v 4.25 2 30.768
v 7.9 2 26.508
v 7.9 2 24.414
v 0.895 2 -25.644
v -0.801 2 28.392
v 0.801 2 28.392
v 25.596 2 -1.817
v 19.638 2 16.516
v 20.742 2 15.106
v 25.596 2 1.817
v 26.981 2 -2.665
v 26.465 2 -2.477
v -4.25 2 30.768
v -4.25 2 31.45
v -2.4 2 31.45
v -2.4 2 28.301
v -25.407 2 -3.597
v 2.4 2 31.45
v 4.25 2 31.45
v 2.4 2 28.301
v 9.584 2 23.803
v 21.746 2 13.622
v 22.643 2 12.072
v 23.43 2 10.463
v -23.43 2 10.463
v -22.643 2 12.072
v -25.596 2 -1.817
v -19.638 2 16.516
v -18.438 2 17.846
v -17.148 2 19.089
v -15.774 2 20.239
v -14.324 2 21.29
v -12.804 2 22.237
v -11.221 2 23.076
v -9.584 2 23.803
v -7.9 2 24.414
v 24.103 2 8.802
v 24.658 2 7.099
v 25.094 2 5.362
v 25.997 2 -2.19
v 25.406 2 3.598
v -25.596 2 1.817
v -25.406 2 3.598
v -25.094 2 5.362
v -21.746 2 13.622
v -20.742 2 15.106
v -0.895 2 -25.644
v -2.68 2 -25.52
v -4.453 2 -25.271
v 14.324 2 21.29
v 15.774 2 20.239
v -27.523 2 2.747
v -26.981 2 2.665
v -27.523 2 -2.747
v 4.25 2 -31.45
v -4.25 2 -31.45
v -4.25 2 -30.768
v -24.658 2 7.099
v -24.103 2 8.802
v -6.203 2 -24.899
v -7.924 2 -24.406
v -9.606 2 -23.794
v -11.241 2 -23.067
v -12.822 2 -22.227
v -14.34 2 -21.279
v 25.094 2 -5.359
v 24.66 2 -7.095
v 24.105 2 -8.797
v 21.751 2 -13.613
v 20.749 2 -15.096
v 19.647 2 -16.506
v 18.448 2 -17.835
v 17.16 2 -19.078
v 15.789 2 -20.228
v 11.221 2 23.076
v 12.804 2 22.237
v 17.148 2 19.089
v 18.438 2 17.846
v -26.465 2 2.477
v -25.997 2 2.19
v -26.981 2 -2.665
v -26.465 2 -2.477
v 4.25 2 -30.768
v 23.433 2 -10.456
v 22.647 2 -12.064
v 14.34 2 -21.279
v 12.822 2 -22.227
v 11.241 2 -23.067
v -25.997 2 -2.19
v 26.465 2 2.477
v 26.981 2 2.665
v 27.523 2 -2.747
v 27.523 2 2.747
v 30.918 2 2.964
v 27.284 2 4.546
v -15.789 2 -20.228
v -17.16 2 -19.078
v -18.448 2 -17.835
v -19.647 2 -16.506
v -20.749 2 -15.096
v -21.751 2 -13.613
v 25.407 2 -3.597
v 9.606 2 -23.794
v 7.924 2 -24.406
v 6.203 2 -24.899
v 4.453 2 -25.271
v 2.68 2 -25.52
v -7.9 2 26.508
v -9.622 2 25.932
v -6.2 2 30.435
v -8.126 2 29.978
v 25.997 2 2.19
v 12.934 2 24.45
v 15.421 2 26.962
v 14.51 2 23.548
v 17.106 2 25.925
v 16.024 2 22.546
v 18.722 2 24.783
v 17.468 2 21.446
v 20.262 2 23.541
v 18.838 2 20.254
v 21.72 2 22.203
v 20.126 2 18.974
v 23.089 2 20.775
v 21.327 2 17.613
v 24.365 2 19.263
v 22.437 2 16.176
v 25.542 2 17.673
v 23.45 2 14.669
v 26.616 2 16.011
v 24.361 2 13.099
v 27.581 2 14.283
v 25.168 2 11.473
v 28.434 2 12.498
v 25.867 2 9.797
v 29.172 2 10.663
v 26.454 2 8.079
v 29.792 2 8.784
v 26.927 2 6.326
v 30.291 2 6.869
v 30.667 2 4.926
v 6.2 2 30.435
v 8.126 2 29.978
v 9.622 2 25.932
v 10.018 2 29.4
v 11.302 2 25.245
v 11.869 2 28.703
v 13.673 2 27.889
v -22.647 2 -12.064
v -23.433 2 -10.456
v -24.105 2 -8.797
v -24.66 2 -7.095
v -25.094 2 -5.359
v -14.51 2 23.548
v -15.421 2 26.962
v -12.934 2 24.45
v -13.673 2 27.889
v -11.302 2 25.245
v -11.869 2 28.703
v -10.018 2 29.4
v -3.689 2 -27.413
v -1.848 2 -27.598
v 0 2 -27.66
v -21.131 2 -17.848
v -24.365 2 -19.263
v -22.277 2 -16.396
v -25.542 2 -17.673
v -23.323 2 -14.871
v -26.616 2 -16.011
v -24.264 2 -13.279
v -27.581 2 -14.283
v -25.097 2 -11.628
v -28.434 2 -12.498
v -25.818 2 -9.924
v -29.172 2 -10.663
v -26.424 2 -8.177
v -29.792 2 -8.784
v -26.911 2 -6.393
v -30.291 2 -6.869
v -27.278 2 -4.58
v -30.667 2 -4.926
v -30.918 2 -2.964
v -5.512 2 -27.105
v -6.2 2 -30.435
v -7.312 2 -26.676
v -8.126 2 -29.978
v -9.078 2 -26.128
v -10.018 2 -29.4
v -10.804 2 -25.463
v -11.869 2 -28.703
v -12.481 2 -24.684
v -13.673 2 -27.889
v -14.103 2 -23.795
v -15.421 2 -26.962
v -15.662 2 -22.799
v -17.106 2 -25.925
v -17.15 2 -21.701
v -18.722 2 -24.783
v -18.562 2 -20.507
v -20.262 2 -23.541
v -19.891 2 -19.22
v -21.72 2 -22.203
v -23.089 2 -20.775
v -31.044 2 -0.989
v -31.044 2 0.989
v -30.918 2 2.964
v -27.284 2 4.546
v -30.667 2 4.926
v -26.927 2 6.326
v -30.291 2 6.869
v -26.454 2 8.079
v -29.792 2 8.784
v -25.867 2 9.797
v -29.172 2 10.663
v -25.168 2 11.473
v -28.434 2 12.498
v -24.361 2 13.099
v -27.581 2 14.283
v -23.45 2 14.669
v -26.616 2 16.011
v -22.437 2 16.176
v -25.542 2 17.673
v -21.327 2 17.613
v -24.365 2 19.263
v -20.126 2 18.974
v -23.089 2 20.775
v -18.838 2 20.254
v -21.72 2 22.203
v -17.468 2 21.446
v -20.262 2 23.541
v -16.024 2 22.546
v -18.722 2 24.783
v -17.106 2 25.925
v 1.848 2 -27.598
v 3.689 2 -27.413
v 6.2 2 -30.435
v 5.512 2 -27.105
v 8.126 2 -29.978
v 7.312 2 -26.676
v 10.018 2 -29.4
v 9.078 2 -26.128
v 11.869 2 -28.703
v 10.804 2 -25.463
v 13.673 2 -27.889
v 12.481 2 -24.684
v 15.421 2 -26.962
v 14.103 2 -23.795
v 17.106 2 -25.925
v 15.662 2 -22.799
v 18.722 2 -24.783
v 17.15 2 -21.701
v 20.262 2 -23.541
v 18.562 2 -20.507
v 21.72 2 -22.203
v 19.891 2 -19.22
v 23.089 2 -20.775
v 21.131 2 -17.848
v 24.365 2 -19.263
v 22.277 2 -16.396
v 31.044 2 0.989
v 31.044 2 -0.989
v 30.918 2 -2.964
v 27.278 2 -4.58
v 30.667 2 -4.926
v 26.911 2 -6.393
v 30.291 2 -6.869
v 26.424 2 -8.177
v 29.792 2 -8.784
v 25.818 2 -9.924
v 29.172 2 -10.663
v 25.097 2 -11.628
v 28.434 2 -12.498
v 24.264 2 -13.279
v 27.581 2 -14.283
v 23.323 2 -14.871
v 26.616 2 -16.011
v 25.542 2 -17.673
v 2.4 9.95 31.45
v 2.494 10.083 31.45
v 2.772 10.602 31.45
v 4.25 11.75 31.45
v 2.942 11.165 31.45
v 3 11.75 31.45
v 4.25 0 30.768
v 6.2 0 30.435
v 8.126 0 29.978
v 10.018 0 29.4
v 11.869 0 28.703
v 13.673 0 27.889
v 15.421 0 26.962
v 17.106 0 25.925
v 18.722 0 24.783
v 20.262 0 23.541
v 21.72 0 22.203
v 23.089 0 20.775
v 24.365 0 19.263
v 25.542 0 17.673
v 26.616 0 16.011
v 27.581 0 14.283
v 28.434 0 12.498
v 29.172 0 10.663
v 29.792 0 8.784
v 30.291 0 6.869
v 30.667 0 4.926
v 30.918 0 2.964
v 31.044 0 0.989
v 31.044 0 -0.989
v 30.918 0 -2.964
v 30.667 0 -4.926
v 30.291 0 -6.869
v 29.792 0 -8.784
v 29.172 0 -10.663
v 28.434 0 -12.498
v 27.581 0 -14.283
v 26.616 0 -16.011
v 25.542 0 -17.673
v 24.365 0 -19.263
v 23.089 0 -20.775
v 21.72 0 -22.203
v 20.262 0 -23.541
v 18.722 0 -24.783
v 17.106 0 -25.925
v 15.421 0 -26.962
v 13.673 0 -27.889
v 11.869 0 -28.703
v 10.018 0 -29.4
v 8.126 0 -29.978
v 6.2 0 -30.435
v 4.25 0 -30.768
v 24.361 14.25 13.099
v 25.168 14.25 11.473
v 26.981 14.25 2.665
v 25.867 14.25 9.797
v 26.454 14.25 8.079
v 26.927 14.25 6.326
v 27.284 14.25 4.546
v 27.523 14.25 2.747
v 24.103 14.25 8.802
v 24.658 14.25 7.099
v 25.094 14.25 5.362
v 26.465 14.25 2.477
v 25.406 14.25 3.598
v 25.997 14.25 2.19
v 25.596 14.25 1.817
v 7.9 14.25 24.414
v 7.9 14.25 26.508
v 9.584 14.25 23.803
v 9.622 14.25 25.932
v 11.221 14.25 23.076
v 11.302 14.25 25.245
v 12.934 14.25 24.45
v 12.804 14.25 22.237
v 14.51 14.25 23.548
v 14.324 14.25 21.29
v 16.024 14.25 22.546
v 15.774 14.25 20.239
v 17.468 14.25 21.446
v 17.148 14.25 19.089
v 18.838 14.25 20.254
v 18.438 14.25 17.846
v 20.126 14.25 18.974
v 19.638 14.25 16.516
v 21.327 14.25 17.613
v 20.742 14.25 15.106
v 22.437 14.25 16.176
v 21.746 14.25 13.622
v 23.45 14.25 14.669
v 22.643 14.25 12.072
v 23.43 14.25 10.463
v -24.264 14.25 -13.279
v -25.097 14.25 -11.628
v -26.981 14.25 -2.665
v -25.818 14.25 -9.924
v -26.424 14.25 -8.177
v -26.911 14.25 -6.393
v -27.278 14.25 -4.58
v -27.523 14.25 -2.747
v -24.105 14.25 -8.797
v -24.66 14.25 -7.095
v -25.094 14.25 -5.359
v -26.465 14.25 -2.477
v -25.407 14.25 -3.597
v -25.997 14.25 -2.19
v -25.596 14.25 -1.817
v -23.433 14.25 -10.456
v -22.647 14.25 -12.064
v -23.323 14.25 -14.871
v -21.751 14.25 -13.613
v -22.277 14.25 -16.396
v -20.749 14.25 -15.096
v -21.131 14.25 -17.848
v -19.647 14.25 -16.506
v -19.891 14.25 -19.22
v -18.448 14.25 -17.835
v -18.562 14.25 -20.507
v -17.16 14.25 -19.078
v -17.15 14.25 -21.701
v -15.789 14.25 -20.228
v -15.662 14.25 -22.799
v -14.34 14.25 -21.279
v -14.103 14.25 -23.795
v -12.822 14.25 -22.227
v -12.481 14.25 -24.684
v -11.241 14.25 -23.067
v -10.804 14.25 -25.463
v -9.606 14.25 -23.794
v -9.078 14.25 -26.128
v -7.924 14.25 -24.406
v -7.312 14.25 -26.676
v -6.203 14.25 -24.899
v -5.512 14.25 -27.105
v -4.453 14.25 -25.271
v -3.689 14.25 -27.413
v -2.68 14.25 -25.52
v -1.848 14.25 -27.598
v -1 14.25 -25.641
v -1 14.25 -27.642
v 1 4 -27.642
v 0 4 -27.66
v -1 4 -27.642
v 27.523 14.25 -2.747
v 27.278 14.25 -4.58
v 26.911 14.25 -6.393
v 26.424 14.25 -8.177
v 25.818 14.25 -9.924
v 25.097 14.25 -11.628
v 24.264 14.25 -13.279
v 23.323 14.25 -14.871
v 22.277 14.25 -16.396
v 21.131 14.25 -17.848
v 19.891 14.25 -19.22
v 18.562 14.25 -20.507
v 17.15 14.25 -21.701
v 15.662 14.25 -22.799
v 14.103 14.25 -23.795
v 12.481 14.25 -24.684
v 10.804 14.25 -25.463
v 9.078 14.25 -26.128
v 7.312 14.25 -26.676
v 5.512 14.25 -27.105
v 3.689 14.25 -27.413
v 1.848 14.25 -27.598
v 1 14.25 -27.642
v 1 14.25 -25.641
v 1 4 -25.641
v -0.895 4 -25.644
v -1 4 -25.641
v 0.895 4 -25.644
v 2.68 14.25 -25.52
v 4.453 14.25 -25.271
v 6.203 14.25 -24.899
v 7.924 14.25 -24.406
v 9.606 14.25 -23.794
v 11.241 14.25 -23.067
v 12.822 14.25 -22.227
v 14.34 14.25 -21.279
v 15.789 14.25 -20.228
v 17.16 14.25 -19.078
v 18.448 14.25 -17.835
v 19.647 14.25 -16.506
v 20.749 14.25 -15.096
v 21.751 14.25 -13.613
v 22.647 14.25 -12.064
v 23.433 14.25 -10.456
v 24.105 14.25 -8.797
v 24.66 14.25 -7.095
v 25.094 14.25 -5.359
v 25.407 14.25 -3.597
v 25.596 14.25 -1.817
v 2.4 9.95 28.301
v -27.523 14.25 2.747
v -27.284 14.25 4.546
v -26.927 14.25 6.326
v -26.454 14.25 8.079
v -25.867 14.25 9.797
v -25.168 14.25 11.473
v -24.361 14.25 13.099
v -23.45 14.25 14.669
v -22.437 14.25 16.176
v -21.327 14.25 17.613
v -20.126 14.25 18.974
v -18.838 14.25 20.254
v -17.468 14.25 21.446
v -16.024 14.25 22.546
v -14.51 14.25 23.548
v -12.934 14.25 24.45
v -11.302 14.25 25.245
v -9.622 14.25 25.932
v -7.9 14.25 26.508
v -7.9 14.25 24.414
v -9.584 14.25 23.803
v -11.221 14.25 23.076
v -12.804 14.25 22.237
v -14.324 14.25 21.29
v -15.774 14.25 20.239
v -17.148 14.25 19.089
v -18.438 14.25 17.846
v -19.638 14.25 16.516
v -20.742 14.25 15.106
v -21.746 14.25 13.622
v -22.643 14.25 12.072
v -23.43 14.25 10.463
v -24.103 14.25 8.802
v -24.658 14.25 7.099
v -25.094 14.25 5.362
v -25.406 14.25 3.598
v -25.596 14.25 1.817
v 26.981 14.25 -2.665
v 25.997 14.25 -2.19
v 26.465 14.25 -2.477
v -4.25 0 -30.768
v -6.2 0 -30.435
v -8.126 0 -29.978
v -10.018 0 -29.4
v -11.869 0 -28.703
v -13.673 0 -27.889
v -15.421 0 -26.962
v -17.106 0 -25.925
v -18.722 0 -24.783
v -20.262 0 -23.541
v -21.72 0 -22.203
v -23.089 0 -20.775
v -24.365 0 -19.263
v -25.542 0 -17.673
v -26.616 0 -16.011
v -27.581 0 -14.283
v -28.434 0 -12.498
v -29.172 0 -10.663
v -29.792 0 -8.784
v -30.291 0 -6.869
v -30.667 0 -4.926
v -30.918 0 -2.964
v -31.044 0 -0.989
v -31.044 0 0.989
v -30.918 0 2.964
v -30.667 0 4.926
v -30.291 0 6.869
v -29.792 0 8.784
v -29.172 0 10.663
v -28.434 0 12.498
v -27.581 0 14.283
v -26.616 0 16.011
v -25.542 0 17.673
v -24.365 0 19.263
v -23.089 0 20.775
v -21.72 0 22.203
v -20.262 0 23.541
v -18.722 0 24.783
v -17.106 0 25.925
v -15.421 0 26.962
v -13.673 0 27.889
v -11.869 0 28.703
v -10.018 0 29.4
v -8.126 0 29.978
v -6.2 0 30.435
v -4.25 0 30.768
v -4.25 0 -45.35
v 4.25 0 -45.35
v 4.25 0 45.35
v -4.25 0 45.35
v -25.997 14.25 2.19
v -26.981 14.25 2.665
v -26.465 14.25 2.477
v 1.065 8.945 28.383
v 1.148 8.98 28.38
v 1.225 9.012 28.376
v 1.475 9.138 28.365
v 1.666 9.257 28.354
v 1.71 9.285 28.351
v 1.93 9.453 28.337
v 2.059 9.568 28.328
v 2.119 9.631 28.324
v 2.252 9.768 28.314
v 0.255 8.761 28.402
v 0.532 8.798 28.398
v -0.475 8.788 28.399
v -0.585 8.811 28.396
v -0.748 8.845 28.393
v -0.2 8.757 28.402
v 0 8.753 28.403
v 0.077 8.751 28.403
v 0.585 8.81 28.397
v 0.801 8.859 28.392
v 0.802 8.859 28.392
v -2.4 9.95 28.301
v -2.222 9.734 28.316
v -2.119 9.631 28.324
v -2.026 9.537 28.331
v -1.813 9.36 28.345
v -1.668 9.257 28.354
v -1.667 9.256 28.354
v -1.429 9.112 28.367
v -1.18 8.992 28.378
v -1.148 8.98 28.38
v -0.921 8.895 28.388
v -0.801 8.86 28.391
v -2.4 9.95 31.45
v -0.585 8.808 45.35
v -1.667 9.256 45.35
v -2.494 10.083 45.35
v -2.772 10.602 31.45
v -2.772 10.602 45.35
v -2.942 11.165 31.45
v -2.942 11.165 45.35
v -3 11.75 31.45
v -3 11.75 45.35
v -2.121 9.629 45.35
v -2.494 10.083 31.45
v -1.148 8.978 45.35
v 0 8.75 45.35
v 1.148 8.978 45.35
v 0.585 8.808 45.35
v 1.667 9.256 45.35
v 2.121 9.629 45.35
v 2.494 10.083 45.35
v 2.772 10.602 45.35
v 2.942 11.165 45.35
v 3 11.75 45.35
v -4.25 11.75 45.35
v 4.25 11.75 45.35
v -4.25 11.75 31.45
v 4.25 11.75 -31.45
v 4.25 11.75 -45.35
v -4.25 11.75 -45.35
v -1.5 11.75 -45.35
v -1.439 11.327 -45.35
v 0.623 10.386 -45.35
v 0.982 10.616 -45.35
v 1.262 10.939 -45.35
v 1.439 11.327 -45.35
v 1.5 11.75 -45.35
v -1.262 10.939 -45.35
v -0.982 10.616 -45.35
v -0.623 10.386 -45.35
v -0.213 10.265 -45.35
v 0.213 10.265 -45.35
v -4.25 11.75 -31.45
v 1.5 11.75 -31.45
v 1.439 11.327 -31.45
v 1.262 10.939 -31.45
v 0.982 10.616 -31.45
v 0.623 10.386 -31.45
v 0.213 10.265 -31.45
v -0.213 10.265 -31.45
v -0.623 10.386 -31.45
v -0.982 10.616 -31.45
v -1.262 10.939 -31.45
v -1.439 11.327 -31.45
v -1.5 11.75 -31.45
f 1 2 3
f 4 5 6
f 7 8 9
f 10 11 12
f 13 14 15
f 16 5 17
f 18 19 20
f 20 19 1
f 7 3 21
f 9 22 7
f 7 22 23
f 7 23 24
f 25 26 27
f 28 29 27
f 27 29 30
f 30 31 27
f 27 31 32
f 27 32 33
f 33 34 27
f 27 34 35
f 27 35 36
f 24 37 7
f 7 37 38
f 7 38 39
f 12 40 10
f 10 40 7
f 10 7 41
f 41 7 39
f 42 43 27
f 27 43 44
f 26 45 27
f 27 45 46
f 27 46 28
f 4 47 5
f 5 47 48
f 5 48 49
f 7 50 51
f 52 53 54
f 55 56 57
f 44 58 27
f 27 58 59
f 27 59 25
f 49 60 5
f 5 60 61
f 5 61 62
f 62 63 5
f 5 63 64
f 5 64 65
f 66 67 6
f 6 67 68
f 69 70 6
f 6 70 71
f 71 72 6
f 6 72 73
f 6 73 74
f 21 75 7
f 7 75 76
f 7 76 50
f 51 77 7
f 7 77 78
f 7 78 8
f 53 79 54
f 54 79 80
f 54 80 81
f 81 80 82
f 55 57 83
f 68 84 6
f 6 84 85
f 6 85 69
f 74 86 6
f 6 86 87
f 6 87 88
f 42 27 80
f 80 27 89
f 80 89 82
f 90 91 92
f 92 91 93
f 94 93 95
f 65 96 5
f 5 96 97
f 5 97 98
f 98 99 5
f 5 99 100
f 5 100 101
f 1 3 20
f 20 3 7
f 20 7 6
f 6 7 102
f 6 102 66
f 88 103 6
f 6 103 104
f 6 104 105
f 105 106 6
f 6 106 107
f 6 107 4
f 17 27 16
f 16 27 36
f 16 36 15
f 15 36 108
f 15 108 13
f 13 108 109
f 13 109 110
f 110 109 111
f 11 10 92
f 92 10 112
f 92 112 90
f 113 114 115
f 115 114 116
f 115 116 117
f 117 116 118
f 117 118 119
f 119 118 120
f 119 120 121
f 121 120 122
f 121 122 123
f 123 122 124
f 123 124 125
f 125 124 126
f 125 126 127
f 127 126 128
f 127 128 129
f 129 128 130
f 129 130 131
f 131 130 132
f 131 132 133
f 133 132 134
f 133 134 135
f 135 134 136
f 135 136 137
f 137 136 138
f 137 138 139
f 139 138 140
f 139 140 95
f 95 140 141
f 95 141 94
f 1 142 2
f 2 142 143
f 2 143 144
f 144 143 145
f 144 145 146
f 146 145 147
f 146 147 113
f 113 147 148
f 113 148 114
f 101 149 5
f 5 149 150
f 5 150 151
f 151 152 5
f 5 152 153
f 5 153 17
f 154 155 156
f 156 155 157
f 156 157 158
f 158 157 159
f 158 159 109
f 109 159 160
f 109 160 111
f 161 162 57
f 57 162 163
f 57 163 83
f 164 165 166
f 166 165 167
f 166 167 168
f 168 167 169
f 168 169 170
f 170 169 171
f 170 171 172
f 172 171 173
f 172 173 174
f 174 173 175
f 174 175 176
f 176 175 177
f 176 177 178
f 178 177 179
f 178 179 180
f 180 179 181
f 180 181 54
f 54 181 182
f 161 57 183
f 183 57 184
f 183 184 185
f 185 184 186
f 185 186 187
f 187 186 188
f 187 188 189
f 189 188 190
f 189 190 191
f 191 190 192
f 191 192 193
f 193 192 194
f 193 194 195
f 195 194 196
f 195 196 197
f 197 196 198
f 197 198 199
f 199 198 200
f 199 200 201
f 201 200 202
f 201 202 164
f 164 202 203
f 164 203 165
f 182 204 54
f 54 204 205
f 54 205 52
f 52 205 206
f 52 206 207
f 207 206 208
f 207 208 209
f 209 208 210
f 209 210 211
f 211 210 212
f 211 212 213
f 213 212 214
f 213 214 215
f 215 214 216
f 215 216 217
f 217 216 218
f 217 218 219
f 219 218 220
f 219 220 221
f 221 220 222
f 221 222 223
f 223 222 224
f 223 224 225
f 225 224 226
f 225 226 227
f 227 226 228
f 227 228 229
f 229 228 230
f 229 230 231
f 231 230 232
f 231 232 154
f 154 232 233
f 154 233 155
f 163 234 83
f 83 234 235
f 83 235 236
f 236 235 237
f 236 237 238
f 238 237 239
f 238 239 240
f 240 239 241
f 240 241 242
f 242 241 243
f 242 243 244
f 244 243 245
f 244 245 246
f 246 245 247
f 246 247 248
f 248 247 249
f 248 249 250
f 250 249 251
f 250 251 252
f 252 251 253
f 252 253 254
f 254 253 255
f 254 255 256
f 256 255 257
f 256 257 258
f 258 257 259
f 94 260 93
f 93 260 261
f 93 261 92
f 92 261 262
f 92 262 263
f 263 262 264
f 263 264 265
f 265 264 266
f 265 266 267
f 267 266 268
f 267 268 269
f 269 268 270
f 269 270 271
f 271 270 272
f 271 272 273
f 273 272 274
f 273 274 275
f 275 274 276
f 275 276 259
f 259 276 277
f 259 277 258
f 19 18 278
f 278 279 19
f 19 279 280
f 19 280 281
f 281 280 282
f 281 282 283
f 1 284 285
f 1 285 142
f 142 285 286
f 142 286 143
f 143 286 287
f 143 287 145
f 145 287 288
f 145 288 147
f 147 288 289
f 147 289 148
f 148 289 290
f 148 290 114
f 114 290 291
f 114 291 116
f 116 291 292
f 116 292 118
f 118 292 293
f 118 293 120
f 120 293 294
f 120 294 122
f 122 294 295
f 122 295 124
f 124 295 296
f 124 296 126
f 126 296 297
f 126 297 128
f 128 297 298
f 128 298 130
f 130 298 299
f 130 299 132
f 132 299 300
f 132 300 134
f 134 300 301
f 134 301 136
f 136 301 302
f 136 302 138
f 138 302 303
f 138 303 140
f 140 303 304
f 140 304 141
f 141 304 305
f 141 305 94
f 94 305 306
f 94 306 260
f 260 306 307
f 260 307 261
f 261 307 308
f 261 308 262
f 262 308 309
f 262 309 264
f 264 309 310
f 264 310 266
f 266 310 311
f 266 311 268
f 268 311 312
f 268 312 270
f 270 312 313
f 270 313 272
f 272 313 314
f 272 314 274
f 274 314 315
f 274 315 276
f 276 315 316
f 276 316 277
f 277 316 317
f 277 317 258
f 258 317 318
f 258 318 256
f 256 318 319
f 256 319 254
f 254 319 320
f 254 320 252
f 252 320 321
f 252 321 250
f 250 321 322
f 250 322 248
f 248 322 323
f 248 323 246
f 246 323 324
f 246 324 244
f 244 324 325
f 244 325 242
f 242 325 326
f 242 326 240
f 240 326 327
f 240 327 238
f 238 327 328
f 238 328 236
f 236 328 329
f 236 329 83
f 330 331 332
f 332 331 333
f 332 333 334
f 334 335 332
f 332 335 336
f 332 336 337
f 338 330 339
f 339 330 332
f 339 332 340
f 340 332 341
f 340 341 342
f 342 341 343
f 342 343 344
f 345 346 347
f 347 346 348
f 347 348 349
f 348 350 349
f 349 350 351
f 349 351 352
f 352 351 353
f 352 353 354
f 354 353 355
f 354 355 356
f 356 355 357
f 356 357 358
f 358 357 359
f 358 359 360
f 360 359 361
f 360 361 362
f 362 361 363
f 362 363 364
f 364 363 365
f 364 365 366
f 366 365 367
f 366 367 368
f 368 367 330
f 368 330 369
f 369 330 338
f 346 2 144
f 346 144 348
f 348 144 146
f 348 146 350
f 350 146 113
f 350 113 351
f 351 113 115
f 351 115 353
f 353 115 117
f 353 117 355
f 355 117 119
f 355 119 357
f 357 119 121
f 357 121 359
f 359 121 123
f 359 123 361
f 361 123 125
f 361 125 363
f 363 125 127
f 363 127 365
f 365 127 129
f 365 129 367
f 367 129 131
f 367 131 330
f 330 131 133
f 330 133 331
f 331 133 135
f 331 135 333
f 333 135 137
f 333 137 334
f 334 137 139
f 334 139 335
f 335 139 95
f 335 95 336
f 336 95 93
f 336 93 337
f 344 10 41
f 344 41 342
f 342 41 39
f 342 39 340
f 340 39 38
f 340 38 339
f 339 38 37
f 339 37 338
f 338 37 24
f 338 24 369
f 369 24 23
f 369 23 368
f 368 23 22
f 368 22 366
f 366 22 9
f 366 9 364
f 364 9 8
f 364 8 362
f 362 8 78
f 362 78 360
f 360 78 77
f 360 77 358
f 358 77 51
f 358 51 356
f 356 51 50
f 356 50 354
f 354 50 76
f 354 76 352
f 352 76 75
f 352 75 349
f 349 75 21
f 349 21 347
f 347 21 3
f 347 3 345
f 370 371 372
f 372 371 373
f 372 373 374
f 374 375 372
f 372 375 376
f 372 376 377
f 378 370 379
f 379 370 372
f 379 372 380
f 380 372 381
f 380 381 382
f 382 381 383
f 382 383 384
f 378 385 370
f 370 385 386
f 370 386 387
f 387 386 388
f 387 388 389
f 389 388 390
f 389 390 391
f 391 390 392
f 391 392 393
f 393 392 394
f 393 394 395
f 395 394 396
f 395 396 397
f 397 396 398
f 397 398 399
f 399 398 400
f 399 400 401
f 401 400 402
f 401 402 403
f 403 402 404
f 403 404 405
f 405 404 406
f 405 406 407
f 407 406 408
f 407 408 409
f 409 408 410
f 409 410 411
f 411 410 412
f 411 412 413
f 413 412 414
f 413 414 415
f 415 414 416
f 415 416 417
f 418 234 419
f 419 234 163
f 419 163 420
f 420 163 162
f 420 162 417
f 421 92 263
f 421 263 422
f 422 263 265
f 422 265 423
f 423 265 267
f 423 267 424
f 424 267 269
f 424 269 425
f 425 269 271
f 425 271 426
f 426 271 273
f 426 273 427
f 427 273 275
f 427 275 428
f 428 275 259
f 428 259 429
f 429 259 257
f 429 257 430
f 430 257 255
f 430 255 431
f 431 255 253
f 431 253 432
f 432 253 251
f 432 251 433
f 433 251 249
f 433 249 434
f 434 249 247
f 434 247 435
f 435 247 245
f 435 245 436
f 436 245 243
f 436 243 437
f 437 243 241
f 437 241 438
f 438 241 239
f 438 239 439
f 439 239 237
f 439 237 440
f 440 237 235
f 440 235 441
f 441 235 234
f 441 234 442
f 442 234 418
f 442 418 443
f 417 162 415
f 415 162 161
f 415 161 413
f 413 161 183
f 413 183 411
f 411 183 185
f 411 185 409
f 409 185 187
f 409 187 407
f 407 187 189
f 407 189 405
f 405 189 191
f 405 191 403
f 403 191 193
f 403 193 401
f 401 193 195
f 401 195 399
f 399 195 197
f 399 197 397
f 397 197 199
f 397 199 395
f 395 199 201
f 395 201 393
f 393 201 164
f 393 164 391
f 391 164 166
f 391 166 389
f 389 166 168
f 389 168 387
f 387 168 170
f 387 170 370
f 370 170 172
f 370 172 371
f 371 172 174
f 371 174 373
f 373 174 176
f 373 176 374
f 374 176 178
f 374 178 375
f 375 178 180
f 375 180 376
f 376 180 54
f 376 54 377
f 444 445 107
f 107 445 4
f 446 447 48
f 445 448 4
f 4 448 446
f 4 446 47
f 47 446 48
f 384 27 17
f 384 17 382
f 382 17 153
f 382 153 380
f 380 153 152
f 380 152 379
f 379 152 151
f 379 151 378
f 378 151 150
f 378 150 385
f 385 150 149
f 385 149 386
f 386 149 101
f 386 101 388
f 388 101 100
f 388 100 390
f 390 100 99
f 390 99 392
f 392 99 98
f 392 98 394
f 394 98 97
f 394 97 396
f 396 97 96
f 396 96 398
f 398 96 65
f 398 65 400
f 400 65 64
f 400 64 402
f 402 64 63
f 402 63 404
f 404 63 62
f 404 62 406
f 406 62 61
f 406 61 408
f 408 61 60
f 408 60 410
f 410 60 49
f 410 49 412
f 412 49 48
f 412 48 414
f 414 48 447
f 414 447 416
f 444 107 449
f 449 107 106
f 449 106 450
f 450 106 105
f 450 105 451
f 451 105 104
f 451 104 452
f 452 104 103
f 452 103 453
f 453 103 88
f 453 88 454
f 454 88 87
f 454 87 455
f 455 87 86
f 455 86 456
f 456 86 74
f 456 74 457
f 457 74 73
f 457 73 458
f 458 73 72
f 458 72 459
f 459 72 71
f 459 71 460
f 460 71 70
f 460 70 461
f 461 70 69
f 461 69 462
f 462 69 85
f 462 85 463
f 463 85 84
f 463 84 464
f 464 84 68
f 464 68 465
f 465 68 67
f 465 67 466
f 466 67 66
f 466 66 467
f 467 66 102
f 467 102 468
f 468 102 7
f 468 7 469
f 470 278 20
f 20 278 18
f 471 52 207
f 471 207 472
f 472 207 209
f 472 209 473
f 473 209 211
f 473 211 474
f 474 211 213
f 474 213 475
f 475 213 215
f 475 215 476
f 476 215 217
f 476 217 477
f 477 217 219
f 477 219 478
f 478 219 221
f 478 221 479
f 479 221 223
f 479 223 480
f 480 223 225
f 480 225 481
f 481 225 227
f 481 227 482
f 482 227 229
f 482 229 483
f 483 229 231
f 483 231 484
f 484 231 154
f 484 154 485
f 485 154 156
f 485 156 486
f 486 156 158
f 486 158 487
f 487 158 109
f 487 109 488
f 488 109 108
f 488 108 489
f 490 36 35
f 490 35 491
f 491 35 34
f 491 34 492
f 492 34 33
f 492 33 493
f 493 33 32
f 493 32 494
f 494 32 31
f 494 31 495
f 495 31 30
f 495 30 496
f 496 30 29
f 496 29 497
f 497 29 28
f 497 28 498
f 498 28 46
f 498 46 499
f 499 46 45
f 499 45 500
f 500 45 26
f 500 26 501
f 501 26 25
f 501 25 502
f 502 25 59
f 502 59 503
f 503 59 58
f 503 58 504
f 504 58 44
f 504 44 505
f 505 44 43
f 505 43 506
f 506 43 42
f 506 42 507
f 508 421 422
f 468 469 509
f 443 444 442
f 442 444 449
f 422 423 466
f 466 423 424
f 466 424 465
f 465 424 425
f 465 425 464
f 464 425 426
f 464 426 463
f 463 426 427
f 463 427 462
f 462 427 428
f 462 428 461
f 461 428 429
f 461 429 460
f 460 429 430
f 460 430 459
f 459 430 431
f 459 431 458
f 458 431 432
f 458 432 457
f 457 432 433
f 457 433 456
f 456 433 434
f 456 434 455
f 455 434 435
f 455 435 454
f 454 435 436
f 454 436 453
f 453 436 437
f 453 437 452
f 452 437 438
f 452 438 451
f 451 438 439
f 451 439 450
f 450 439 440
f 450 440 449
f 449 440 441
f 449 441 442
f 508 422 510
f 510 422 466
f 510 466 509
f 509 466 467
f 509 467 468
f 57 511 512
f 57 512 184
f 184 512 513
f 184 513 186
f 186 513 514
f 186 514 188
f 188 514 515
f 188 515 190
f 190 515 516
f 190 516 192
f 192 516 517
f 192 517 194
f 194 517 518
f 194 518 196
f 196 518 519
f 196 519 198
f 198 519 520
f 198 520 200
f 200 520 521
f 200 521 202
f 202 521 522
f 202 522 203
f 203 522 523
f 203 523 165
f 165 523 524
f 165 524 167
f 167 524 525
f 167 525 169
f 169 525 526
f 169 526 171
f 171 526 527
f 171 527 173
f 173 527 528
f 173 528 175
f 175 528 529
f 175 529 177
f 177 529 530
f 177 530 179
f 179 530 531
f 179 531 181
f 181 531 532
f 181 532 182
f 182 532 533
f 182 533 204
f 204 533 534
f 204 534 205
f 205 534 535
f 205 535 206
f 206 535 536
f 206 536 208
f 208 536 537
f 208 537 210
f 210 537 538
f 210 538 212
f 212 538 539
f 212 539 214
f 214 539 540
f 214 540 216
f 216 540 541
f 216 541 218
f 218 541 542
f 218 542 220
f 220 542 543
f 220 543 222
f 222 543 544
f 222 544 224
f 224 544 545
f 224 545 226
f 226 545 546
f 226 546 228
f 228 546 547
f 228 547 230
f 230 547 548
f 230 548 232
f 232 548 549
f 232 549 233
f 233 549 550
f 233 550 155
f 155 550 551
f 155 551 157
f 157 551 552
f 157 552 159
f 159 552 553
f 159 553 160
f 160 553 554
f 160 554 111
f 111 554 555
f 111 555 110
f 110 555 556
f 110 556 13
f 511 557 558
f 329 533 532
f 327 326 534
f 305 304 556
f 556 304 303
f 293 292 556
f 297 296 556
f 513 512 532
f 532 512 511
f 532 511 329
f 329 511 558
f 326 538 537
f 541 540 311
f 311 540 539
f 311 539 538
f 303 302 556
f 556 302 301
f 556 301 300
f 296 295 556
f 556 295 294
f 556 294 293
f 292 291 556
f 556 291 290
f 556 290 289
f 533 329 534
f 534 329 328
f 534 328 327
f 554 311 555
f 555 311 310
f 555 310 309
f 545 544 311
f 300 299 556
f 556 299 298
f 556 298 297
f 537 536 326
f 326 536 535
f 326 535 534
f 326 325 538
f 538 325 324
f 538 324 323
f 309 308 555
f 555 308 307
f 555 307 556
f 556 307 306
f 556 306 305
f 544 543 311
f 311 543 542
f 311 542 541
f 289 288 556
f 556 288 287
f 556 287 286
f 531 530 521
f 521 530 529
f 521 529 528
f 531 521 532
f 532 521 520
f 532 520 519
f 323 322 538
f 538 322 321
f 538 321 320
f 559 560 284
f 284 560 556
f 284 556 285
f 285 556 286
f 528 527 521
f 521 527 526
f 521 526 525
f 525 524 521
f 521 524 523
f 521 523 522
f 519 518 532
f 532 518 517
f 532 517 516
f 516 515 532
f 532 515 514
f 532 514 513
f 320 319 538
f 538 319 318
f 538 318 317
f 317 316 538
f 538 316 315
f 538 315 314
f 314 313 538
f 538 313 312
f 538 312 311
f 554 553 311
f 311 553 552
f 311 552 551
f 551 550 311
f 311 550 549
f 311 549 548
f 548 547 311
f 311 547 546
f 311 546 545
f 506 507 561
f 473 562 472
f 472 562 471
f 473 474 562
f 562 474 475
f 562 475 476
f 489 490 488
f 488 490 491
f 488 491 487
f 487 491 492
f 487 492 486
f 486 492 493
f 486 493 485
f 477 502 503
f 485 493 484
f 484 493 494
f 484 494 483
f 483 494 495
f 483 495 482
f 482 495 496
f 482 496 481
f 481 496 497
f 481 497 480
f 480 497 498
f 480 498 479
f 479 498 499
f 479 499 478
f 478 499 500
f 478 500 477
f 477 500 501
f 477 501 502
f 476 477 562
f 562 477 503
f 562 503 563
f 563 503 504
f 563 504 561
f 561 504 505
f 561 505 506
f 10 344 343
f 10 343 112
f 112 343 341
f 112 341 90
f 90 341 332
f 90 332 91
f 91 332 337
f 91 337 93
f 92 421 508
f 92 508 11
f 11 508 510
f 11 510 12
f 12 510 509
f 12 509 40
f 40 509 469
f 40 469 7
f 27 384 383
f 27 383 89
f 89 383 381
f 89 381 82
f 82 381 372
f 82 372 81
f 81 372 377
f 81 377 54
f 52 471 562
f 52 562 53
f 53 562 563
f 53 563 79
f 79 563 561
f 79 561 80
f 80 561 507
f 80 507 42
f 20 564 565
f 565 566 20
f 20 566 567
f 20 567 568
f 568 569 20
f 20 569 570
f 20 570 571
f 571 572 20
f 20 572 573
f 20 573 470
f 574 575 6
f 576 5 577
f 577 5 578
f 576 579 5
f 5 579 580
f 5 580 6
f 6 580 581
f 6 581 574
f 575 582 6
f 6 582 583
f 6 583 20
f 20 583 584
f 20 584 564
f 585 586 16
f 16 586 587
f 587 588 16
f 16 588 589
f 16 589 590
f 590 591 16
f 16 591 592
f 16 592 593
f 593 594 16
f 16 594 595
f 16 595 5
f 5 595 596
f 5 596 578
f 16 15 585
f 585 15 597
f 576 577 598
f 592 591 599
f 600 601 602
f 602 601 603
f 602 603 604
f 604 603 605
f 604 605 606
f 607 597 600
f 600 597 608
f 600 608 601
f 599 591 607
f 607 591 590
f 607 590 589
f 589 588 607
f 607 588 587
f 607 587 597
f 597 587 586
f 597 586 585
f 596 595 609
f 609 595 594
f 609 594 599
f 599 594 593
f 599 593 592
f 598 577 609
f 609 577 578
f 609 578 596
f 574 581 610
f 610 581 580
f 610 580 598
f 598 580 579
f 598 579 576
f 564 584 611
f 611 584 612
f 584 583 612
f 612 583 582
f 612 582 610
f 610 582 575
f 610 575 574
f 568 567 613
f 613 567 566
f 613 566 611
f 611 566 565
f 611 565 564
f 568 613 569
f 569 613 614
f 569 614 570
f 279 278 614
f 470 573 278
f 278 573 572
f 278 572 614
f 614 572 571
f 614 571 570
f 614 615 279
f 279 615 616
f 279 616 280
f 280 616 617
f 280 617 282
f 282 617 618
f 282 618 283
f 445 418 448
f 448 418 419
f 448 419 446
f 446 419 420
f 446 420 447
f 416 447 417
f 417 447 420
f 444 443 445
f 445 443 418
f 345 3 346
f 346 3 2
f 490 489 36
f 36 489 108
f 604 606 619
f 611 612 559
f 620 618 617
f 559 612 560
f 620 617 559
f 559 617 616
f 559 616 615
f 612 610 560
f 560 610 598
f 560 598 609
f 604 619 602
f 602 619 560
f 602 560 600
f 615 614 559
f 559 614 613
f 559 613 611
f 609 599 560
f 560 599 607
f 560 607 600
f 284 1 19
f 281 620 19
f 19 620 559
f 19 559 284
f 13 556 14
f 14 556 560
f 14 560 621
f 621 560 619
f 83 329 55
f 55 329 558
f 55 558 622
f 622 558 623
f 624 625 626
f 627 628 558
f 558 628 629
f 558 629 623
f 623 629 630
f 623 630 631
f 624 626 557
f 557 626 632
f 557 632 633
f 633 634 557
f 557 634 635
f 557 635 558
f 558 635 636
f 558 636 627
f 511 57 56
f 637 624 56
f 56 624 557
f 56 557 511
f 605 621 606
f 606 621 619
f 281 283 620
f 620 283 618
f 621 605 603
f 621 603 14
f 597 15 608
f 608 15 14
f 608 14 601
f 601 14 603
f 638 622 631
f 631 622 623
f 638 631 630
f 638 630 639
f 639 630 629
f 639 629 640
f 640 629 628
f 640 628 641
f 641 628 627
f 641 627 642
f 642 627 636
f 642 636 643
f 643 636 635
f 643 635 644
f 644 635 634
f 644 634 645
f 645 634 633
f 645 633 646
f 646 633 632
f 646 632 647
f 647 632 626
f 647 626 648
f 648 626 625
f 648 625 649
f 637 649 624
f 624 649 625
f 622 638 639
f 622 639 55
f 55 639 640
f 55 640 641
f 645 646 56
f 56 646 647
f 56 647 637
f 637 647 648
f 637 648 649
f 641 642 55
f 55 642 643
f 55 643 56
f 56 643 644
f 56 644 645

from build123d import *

# Parameters (mm, degrees)
SKETCH1_R                = 31.06
BOSS_EXTRUDE1_DEPTH      = 2
SKETCH2_R                = 27.66
SKETCH2_R_2              = 25.66
BOSS_EXTRUDE2_DEPTH      = 12.25
CUT_EXTRUDE1_DEPTH       = 12.25
CUT_EXTRUDE2_DEPTH       = 6.8
BOSS_EXTRUDE5_DEPTH      = 12.25
CUT_EXTRUDE3_DEPTH       = 7.6
SKETCH9_W                = 2
SKETCH9_H                = 2
SKETCH9_H_2              = 8.25
CUT_EXTRUDE4_DEPTH       = 32.06
CUT_EXTRUDE5_DEPTH       = 12.25
SKETCH12_W               = 4.25
SKETCH12_H               = 14.29
SKETCH12_R               = 31.06
BOSS_EXTRUDE7_DEPTH      = 2
BOSS_EXTRUDE8_DEPTH      = 13.9
BOSS_EXTRUDE9_DEPTH      = 2
BOSS_EXTRUDE9_DEPTH_BACK = 2
BOSS_EXTRUDE10_DEPTH     = 13.9


with BuildPart() as part:
    # Sketch1 → Boss-Extrude1 (new body)
    with BuildSketch(Plane(origin=(0, 0, 0), x_dir=(1, 0, 0), z_dir=(0, 1, 0))):
        Circle(SKETCH1_R)
    extrude(amount=BOSS_EXTRUDE1_DEPTH)

    # Sketch2 → Boss-Extrude2 (add)
    with BuildSketch(Plane(origin=(0, 2, 0), x_dir=(1, 0, 0), z_dir=(0, 1, 0))):
        Circle(SKETCH2_R)
        Circle(SKETCH2_R_2, mode=Mode.SUBTRACT)
    extrude(amount=BOSS_EXTRUDE2_DEPTH)

    # Sketch4 → Cut-Extrude1 (cut)
    with BuildSketch(Plane(origin=(0, 14.25, 0), x_dir=(1, 0, 0), z_dir=(0, 1, 0))):
        with BuildLine():
            ThreePointArc((25.66, 0), (25.643895434, -0.90897027), (25.595601952, -1.816799576))
            ThreePointArc((25.595601952, -1.816799576), (26.465284353, -2.476924408), (27.523295372, -2.746600052))
            ThreePointArc((27.523295372, -2.746600052), (27.625802703, -1.375), (27.66, 0))
            ThreePointArc((27.66, 0), (27.625802703, 1.375), (27.523295372, 2.746600052))
            ThreePointArc((27.523295372, 2.746600052), (26.465284353, 2.476924408), (25.595601952, 1.816799576))
            ThreePointArc((25.595601952, 1.816799576), (25.643895434, 0.90897027), (25.66, 0))
        make_face()
        with BuildLine():
            ThreePointArc((-25.595601952, 1.816799576), (-25.66, 0), (-25.595601952, -1.816799576))
            ThreePointArc((-25.595601952, -1.816799576), (-26.465284353, -2.476924408), (-27.523295372, -2.746600052))
            ThreePointArc((-27.523295372, -2.746600052), (-27.66, 0), (-27.523295372, 2.746600052))
            ThreePointArc((-27.523295372, 2.746600052), (-26.465284353, 2.476924408), (-25.595601952, 1.816799576))
        make_face()
    extrude(amount=-CUT_EXTRUDE1_DEPTH, mode=Mode.SUBTRACT)

    # Sketch5 → Cut-Extrude2 (cut)
    with BuildSketch(Plane(origin=(0, 14.25, 0), x_dir=(1, 0, 0), z_dir=(0, 1, 0))):
        with BuildLine():
            Line((0, -27.66), (0, -25.66))
            ThreePointArc((0, -25.66), (-1.502578344, -25.615968815), (-3, -25.484026369))
            Line((-3, -25.484026369), (-3, -27.496828908))
            ThreePointArc((-3, -27.496828908), (-1.502217095, -27.619177102), (0, -27.66))
        make_face()
        with BuildLine():
            ThreePointArc((3, -25.484026369), (1.502578344, -25.615968815), (0, -25.66))
            Line((0, -25.66), (0, -27.66))
            ThreePointArc((0, -27.66), (1.502217095, -27.619177102), (3, -27.496828908))
            Line((3, -27.496828908), (3, -25.484026369))
        make_face()
    extrude(amount=-CUT_EXTRUDE2_DEPTH, mode=Mode.SUBTRACT)

    # Sketch7 → Boss-Extrude5 (add)
    with BuildSketch(Plane(origin=(0, 2, 0), x_dir=(1, 0, 0), z_dir=(0, 1, 0))):
        with BuildLine():
            Line((2.4, -28.301441659), (2.4, -30.96713742))
            ThreePointArc((2.4, -30.96713742), (0, -31.06), (-2.4, -30.96713742))
            Line((-2.4, -30.96713742), (-2.4, -28.301441659))
            ThreePointArc((-2.4, -28.301441659), (0, -28.402816869), (2.4, -28.301441659))
        make_face()
    extrude(amount=BOSS_EXTRUDE5_DEPTH)

    # Sketch8 → Cut-Extrude3 (cut)
    with BuildSketch(Plane.XY.offset(31.06)):
        with BuildLine():
            ThreePointArc((2.4, 13.55), (2.059119927, 13.931748181), (1.658312395, 14.25))
            Line((1.658312395, 14.25), (-1.658312395, 14.25))
            ThreePointArc((-1.658312395, 14.25), (-2.059119927, 13.931748181), (-2.4, 13.55))
            Line((-2.4, 13.55), (-2.4, 11.75))
            Line((-2.4, 11.75), (2.4, 11.75))
            Line((2.4, 11.75), (2.4, 13.55))
        make_face()
        with BuildLine():
            ThreePointArc((3, 11.75), (2.846049894, 12.698683298), (2.4, 13.55))
            Line((2.4, 13.55), (2.4, 11.75))
            Line((2.4, 11.75), (2.4, 9.95))
            ThreePointArc((2.4, 9.95), (2.846049894, 10.801316702), (3, 11.75))
        make_face()
        with BuildLine():
            Line((2.4, 9.95), (2.4, 11.75))
            Line((2.4, 11.75), (-2.4, 11.75))
            Line((-2.4, 11.75), (-2.4, 9.95))
            ThreePointArc((-2.4, 9.95), (0, 8.75), (2.4, 9.95))
        make_face()
        with BuildLine():
            Line((-2.4, 11.75), (-2.4, 13.55))
            ThreePointArc((-2.4, 13.55), (-3, 11.75), (-2.4, 9.95))
            Line((-2.4, 9.95), (-2.4, 11.75))
        make_face()
        with BuildLine():
            Line((2.4, 13.55), (2.4, 14.25))
            Line((2.4, 14.25), (1.658312395, 14.25))
            ThreePointArc((1.658312395, 14.25), (2.059119927, 13.931748181), (2.4, 13.55))
        make_face()
        with BuildLine():
            ThreePointArc((-2.4, 13.55), (-2.059119927, 13.931748181), (-1.658312395, 14.25))
            Line((-1.658312395, 14.25), (-2.4, 14.25))
            Line((-2.4, 14.25), (-2.4, 13.55))
        make_face()
    extrude(amount=-CUT_EXTRUDE3_DEPTH, mode=Mode.SUBTRACT)

    # Sketch9 → Cut-Extrude4 (cut, through all)
    with BuildSketch(Plane.XY):
        with Locations((0, 5)):
            Rectangle(SKETCH9_W, SKETCH9_H)
        with Locations((0, 10.125)):
            Rectangle(SKETCH9_W, SKETCH9_H_2)
    extrude(amount=-CUT_EXTRUDE4_DEPTH, mode=Mode.SUBTRACT)

    # Sketch11 → Cut-Extrude5 (cut)
    with BuildSketch(Plane(origin=(0, 14.25, 0), x_dir=(1, 0, 0), z_dir=(0, 1, 0))):
        with BuildLine():
            ThreePointArc((3, -27.496828908), (5.472387467, -27.113254607), (7.9, -26.50784035))
            Line((7.9, -26.50784035), (7.9, -24.413635534))
            ThreePointArc((7.9, -24.413635534), (5.476215311, -25.068838542), (3, -25.484026369))
            Line((3, -25.484026369), (3, -27.496828908))
        make_face()
        with BuildLine():
            Line((-7.9, -26.50784035), (-7.9, -27.987377494))
            Line((-7.9, -27.987377494), (7.9, -27.987377494))
            Line((7.9, -27.987377494), (7.9, -26.50784035))
            ThreePointArc((7.9, -26.50784035), (5.472387467, -27.113254607), (3, -27.496828908))
            Line((3, -27.496828908), (3, -25.484026369))
            ThreePointArc((3, -25.484026369), (5.476215311, -25.068838542), (7.9, -24.413635534))
            Line((7.9, -24.413635534), (7.9, -24.165769621))
            Line((7.9, -24.165769621), (-7.9, -24.165769621))
            Line((-7.9, -24.165769621), (-7.9, -24.413635534))
            ThreePointArc((-7.9, -24.413635534), (-5.476215311, -25.068838542), (-3, -25.484026369))
            Line((-3, -25.484026369), (-3, -27.496828908))
            ThreePointArc((-3, -27.496828908), (-5.472387467, -27.113254607), (-7.9, -26.50784035))
        make_face()
        with BuildLine():
            Line((-7.9, -24.413635534), (-7.9, -26.50784035))
            ThreePointArc((-7.9, -26.50784035), (-5.472387467, -27.113254607), (-3, -27.496828908))
            Line((-3, -27.496828908), (-3, -25.484026369))
            ThreePointArc((-3, -25.484026369), (-5.476215311, -25.068838542), (-7.9, -24.413635534))
        make_face()
    extrude(amount=-CUT_EXTRUDE5_DEPTH, mode=Mode.SUBTRACT)

    # Sketch12 → Boss-Extrude7 (add)
    with BuildSketch(Plane.XZ):
        with Locations((2.125, 38.205)):
            Rectangle(SKETCH12_W, SKETCH12_H)
        with Locations((-2.125, 38.205)):
            Rectangle(SKETCH12_W, SKETCH12_H)
        with BuildLine():
            Line((4.25, 31.06), (0, 31.06))
            ThreePointArc((0, 31.06), (2.130014484, 30.986878486), (4.25, 30.767858229))
            Line((4.25, 30.767858229), (4.25, 31.06))
        make_face()
        with BuildLine():
            ThreePointArc((-4.25, 30.767858229), (-2.130014484, 30.986878486), (0, 31.06))
            Line((0, 31.06), (-4.25, 31.06))
            Line((-4.25, 31.06), (-4.25, 30.767858229))
        make_face()
        with Locations((2.125, -38.205)):
            Rectangle(SKETCH12_W, SKETCH12_H)
        with Locations((-2.125, -38.205)):
            Rectangle(SKETCH12_W, SKETCH12_H)
        with BuildLine():
            ThreePointArc((0, -31.06), (-2.130014484, -30.986878486), (-4.25, -30.767858229))
            Line((-4.25, -30.767858229), (-4.25, -31.06))
            Line((-4.25, -31.06), (0, -31.06))
        make_face()
        with BuildLine():
            Line((4.25, -31.06), (4.25, -30.767858229))
            ThreePointArc((4.25, -30.767858229), (2.130014484, -30.986878486), (0, -31.06))
            Line((0, -31.06), (4.25, -31.06))
        make_face()
        Circle(SKETCH12_R)
    extrude(amount=-BOSS_EXTRUDE7_DEPTH)

    # Sketch13 → Boss-Extrude8 (add)
    with BuildSketch(Plane.XY.offset(45.35)):
        with BuildLine():
            Line((-3, 11.75), (-4.25, 11.75))
            Line((-4.25, 11.75), (-4.25, 2))
            Line((-4.25, 2), (4.25, 2))
            Line((4.25, 2), (4.25, 11.75))
            Line((4.25, 11.75), (3, 11.75))
            ThreePointArc((3, 11.75), (0, 8.75), (-3, 11.75))
        make_face()
    extrude(amount=-BOSS_EXTRUDE8_DEPTH)

    # Sketch14 → Boss-Extrude9 (add, two sides)
    with BuildSketch(Plane.XY.offset(31.06)) as boss_extrude9_sk:
        with BuildLine():
            Line((-2.4, 2), (2.4, 2))
            Line((2.4, 2), (2.4, 9.95))
            ThreePointArc((2.4, 9.95), (0, 8.75), (-2.4, 9.95))
            Line((-2.4, 9.95), (-2.4, 2))
        make_face()
    extrude(amount=BOSS_EXTRUDE9_DEPTH)
    extrude(boss_extrude9_sk.sketch, amount=-BOSS_EXTRUDE9_DEPTH_BACK)

    # Sketch15 → Boss-Extrude10 (add)
    with BuildSketch(Plane(origin=(0, 0, -45.35), x_dir=(-1, 0, 0), z_dir=(0, 0, -1))):
        with BuildLine():
            Line((-1.5, 11.75), (-4.25, 11.75))
            Line((-4.25, 11.75), (-4.25, 0))
            Line((-4.25, 0), (4.25, 0))
            Line((4.25, 0), (4.25, 11.75))
            Line((4.25, 11.75), (1.5, 11.75))
            ThreePointArc((1.5, 11.75), (0, 10.25), (-1.5, 11.75))
        make_face()
    extrude(amount=-BOSS_EXTRUDE10_DEPTH)


solid = part.part
